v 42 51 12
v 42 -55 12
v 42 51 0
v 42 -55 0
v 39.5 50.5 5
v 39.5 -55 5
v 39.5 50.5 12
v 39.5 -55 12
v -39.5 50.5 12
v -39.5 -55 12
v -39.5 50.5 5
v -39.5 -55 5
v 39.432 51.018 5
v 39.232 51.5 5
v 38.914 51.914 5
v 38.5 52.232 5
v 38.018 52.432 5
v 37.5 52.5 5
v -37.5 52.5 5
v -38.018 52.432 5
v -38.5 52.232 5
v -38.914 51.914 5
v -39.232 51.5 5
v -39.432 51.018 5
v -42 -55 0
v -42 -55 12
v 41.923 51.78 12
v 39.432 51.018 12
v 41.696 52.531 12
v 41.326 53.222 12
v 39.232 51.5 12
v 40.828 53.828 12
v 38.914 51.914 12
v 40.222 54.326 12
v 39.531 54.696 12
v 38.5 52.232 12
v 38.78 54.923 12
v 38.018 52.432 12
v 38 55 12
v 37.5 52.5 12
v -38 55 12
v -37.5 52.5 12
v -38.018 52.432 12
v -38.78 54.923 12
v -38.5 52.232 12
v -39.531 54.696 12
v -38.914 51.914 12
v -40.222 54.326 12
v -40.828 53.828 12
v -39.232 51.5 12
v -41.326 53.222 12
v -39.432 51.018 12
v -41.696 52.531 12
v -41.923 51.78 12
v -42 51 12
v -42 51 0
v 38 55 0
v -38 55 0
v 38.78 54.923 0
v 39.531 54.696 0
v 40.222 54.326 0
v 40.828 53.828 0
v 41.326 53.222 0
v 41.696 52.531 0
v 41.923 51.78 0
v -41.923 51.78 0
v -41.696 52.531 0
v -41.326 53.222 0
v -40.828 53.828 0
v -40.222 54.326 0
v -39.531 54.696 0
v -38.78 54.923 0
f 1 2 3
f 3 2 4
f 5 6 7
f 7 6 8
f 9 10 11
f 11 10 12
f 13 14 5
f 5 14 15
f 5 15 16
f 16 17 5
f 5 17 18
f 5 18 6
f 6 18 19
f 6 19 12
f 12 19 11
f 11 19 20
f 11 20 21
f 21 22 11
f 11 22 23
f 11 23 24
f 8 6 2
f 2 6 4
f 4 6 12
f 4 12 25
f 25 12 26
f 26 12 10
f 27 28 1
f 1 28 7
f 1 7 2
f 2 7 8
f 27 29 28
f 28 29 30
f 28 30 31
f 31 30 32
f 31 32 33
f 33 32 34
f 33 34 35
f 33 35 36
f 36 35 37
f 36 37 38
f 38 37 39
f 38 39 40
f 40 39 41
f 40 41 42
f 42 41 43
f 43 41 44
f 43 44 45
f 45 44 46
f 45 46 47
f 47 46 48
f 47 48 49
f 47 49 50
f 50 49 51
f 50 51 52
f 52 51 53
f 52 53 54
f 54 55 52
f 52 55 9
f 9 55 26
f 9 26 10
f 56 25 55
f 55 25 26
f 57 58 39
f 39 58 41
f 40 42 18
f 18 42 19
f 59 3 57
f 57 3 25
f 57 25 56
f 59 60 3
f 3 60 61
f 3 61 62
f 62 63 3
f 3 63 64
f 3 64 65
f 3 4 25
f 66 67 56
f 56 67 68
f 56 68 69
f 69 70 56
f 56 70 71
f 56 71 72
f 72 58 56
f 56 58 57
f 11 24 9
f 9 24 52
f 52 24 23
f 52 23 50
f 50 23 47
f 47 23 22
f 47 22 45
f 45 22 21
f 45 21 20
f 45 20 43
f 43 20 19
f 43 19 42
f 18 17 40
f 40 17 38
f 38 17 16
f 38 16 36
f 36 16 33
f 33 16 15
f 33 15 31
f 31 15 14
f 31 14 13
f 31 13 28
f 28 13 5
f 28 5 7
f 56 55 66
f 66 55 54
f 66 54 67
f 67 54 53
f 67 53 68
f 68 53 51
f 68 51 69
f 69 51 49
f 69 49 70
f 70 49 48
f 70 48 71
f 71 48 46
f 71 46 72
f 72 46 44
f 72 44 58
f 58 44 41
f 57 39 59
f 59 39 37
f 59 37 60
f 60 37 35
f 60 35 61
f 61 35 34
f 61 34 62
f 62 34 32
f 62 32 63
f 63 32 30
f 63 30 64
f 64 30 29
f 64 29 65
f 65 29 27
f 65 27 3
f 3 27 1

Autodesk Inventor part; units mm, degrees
ref_plane "YZ Plane" through (0, 0, 0) normal (1, 0, 0) x (0, 1, 0)
ref_plane "XZ Plane" through (0, 0, 0) normal (0, 1, 0) x (-1, 0, 0)
ref_plane "XY Plane" through (0, 0, 0) normal (0, 0, 1) x (1, 0, 0)
sketch "Sketch1" plane through (0, 0, 0) normal (0, 0, 1) x (1, 0, 0)
  line L0 (-42, -55) -> (42, -55)
  line L1 (42, -55) -> (42, 55)
  line L2 (42, 55) -> (-42, 55)
  line L3 (-42, 55) -> (-42, -55)
  line L4 (-42, -55) -> (42, 55) construction
  line L5 (42, -55) -> (-42, 55) construction
  point P0 (0, 0)
  dimension "d0" = 110
  dimension "d1" = 84
extrude "Extrusion1" add sketch "Sketch1" along normal blind 12
sketch "Sketch2" plane through (0, 0, 12) normal (0, 0, 1) x (1, 0, 0)
  line L0 (0, 80.5745) -> (0, -98.447) projected
  line L1 (-39.5, 52.5) -> (-39.5, -72.8725)
  line L2 (-39.5, -72.8725) -> (39.5, -72.8725)
  line L3 (39.5, -72.8725) -> (39.5, 52.5)
  line L4 (39.5, 52.5) -> (-39.5, 52.5)
  line L5 (-39.5, 52.5) -> (39.5, -72.8725) construction
  line L6 (-39.5, -72.8725) -> (39.5, 52.5) construction
  line L7 (-42, 55) -> (-42, -55) projected
  line L8 (42, 55) -> (-42, 55) projected
  point P0 (0, 0)
  point P1 (0, -10.1862)
  dimension "d4" = 2.5
  dimension "d5" = 2.5
extrude "Extrusion2" cut sketch "Sketch2" against normal blind 7
fillet "Fillet2" radius 2 2 edges at (-39.5, 52.5, 8.5) (39.5, 52.5, 8.5)
fillet "Fillet3" radius 4 2 edges at (-42, 55, 6) (42, 55, 6)
sketch "Sketch4" plane through (0, 0, 5) normal (0, 0, 1) x (1, 0, 0)
  circle A0 centre (-23, -45) radius 5
  line L0 (39.5, -55) -> (-39.5, -55) projected
  line L1 (0, 77) -> (0, -77) projected
  point P0 (0, 0)
  dimension "d19" = 10
  dimension "d26" = 23
  dimension "d32" = 10
sketch "Sketch5" plane through (0, 0, 0) normal (1, 0, 0) x (0, 1, 0)
  line L0 (55, 0) -> (55, 12) projected
  line L1 (55, 7.5) -> (47.2058, 12)
  line L2 (-55, 12) -> (55, 12) projected
  line L3 (-55, 0) -> (55, 0) projected
  line L4 (55, 7.5) -> (55, 12)
  line L5 (47.2058, 12) -> (55, 12)
  point P0 (0, 0)
  dimension "d28" = 7.5
  dimension "d29" = 60
sketch "Sketch3" plane through (0, 0, 0) normal (0, 0, -1) x (-1, 0, 0)
  line L0 (-42, -55) -> (-42, 55) projected
  line L1 (-42, -45) -> (42, -45) construction
  line L2 (42, 55) -> (42, -55) projected
  line L3 (42, -55) -> (-42, -55) projected
  point P0 (0, 0)
  point P1 (0, -45)
  point P2 (-23, -45)
  point P3 (23, -45)
  dimension "d8" = 10
  dimension "d10" = 23
  dimension "d11" = 46
sketch "Sketch7" plane through (0, 0, 5) normal (0, 0, 1) x (1, 0, 0)
  line L0 (-42, 55) -> (-42, -55) projected
  line L1 (-42, 55) -> (-32, 55)
  line L2 (-32, 55) -> (-32, 45)
  line L3 (-32, 45) -> (-42, 45)
  line L4 (-42, 45) -> (-42, 55)
  point P0 (0, 0)
  dimension "d37" = 10
  dimension "d38" = 10
sketch "Sketch8" plane through (0, 0, 5) normal (0, 0, 1) x (1, 0, 0)
  line L0 (-42, 55) -> (-32, 55) projected
  line L1 (-42, 45) -> (-42, 55) projected
  line L2 (-42, 55) -> (-42, -55) projected
  line L3 (-37, 46) -> (-42, 46)
  line L4 (-42, 46) -> (-42, 51)
  line L5 (-42, 51) -> (-37, 51)
  line L6 (-37, 51) -> (-37, 46)
  line L7 (-37, 46) -> (-42, 51) construction
  line L8 (-42, 46) -> (-37, 51) construction
  line L9 (-37, 48.5) -> (-39.5, 48.5) construction
  circle A0 centre (-37, 48.5) radius 2.5
  point P0 (0, 0)
  dimension "d41" = 6.5
  dimension "d42" = 5
  dimension "d43" = 5
properties part number "plate"
